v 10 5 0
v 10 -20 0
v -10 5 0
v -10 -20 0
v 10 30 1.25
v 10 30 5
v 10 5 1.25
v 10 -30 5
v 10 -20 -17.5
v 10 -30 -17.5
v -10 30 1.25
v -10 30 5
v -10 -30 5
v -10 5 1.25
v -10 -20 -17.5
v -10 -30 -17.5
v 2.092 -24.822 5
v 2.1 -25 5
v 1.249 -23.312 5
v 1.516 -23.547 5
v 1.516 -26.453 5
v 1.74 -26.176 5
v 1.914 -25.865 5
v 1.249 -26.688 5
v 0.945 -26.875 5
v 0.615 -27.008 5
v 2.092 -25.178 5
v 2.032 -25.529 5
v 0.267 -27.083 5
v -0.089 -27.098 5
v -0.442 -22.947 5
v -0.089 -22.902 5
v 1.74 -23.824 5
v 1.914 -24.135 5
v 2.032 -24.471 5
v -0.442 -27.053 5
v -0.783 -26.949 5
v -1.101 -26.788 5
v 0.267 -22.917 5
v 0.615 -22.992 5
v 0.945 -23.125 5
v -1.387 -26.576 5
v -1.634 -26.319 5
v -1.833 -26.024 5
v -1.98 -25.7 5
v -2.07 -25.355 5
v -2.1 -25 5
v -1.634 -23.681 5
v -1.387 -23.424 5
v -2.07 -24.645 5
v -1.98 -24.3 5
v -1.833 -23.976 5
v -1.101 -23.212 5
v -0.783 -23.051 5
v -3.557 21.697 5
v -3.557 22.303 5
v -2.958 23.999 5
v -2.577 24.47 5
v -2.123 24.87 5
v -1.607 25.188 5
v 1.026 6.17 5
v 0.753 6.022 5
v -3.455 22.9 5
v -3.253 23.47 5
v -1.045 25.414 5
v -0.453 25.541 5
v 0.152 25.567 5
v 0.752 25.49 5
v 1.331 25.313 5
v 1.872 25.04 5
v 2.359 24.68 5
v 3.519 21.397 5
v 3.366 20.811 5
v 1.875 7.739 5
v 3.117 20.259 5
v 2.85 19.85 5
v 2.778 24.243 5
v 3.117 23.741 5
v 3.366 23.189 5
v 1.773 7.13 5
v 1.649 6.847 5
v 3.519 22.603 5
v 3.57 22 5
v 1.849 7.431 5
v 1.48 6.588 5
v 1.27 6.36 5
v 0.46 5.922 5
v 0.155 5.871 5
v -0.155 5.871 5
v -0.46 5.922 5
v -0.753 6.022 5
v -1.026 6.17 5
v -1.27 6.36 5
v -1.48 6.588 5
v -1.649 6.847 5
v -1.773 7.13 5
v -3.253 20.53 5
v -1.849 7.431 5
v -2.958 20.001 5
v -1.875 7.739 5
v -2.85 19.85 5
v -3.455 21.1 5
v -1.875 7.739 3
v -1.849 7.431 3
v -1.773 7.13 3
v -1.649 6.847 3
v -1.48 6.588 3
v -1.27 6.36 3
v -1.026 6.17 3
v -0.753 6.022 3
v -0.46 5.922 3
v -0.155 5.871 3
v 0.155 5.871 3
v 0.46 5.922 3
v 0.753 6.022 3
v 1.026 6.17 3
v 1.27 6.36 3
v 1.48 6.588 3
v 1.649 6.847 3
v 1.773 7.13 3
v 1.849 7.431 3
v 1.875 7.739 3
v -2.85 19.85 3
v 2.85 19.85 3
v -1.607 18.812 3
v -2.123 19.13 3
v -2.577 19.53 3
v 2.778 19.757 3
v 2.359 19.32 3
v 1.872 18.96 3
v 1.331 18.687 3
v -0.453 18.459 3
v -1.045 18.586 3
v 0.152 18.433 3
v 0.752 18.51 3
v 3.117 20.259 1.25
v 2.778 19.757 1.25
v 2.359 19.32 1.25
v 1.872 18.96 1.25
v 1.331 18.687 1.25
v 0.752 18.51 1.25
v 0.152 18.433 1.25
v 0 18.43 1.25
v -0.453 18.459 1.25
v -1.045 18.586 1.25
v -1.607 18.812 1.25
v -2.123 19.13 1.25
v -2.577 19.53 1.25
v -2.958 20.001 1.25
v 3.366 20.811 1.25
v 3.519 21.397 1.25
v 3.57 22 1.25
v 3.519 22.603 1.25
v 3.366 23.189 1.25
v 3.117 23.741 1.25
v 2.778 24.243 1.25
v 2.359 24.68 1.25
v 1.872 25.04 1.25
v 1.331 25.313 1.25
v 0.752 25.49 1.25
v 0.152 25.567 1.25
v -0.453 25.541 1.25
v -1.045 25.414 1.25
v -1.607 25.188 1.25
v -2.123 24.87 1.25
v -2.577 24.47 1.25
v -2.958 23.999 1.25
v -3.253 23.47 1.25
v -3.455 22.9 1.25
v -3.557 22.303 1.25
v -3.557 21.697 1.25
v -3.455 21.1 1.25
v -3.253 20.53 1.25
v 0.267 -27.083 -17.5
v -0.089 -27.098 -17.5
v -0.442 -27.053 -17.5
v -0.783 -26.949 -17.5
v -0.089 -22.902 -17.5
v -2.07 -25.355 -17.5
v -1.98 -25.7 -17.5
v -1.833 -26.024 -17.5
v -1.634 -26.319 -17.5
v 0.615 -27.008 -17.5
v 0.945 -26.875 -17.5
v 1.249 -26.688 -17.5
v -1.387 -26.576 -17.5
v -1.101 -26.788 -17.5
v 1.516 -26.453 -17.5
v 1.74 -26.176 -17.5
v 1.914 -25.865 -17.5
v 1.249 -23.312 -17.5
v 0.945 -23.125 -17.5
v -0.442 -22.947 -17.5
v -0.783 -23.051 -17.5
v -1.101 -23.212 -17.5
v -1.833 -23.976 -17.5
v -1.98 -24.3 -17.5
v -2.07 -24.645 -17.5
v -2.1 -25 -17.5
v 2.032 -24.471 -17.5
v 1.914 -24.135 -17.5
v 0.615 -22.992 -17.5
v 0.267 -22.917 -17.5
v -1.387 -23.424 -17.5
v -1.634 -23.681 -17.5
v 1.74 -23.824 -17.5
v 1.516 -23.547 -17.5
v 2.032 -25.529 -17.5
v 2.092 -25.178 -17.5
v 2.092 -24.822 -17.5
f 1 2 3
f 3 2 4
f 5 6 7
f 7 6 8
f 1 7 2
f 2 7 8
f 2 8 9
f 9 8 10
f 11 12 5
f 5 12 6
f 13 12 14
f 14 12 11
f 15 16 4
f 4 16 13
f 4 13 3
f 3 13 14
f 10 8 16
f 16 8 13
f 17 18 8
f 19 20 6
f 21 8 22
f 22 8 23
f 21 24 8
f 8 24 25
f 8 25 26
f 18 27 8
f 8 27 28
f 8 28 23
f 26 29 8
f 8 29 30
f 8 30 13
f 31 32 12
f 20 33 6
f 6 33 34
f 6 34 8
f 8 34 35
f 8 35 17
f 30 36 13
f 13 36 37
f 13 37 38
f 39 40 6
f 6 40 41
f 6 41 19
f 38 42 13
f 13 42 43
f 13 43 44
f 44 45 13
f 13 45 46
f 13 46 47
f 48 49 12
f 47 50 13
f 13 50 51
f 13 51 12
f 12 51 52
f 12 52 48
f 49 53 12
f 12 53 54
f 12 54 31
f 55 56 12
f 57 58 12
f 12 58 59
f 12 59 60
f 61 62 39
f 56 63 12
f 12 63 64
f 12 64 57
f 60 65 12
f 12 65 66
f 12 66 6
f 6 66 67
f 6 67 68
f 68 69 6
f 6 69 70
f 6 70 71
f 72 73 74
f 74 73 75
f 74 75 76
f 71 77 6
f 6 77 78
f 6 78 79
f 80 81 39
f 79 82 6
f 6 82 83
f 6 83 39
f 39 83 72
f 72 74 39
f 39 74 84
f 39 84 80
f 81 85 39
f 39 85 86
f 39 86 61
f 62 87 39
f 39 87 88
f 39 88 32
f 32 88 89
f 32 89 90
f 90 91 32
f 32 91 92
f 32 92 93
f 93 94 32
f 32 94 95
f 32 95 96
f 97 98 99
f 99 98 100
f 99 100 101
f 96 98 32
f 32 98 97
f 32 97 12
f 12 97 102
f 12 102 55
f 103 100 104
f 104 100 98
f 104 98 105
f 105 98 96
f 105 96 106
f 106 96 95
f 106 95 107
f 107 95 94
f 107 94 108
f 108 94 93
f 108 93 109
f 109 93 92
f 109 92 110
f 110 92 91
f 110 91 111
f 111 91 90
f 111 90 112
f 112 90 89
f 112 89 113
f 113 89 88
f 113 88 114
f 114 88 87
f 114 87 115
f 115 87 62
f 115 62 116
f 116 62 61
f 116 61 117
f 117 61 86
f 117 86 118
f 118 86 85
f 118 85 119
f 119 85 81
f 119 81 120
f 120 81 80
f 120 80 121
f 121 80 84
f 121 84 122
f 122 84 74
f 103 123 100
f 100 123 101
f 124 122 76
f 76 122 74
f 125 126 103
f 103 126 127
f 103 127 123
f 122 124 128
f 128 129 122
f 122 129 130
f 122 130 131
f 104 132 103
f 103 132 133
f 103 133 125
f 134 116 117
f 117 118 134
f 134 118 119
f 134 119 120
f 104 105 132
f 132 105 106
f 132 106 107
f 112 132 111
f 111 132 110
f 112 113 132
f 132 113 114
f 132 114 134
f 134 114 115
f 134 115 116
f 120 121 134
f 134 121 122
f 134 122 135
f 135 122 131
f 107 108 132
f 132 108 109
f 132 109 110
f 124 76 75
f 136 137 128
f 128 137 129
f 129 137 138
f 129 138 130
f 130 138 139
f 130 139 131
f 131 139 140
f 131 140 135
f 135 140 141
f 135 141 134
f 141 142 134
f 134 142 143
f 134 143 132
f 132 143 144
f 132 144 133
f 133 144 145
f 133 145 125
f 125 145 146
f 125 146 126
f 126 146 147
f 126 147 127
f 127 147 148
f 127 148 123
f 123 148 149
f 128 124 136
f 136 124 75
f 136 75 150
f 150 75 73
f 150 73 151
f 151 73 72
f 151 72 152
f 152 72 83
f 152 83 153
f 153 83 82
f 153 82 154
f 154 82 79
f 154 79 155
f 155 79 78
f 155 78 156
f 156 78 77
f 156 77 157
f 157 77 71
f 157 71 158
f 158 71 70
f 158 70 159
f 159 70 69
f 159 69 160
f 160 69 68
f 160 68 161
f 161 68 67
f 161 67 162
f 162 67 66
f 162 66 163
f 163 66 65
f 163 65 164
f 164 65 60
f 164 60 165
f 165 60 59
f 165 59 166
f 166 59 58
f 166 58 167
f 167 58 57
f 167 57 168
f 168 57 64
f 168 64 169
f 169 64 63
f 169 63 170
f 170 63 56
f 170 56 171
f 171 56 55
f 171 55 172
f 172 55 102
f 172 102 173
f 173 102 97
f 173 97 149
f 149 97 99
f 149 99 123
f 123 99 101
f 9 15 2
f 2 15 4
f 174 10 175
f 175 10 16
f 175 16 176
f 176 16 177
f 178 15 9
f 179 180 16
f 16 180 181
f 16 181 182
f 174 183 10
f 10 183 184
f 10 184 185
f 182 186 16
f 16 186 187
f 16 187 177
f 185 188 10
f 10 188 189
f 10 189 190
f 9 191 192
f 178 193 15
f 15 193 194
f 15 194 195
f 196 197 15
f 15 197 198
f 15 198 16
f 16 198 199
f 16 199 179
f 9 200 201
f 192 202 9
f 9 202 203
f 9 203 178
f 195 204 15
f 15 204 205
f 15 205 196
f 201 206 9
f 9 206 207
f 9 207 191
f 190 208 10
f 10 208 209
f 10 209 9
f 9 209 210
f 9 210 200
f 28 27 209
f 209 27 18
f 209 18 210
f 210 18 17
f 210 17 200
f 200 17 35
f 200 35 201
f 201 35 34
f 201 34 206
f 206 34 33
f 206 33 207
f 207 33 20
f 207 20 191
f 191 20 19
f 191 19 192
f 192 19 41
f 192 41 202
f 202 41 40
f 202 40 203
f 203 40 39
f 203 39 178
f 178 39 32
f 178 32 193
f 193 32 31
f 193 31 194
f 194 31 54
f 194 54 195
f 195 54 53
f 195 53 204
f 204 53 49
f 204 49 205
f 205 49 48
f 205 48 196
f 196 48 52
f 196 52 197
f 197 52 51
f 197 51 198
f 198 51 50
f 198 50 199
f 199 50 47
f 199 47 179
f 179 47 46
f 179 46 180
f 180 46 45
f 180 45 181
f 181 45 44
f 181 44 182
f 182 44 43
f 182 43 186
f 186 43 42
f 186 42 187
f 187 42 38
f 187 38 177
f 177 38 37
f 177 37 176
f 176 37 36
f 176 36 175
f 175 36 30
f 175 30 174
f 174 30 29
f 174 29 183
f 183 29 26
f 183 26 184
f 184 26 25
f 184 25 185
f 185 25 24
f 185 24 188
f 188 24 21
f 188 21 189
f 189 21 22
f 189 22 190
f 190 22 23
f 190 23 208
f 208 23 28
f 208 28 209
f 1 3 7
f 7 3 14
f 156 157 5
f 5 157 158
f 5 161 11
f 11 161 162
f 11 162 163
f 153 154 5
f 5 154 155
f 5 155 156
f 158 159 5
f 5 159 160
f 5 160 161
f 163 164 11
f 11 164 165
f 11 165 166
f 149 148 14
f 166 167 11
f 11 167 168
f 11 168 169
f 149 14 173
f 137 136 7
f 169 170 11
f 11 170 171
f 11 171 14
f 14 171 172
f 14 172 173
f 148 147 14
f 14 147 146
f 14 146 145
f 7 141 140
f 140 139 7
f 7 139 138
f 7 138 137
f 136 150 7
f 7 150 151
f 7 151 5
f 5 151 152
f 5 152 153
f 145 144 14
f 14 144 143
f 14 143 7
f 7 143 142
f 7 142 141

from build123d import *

# Parameters (mm, degrees)
SKETCH3_W           = 20
SKETCH3_H           = 60
BOSS_EXTRUDE3_DEPTH = 5
CUT_EXTRUDE2_DEPTH  = 2
SKETCH6_R           = 3.57
CUT_EXTRUDE3_DEPTH  = 3
SKETCH7_W           = 20
SKETCH7_H           = 10
BOSS_EXTRUDE4_DEPTH = 17.5
SKETCH8_R           = 2.1
CUT_EXTRUDE4_DEPTH  = 40
SKETCH9_W           = 1.25
SKETCH9_H           = 25
CUT_EXTRUDE5_DEPTH  = 30


with BuildPart() as part:
    # Sketch3 → Boss-Extrude3 (new body)
    with BuildSketch(Plane.XY):
        Rectangle(SKETCH3_W, SKETCH3_H)
    extrude(amount=BOSS_EXTRUDE3_DEPTH)

    # Sketch4 → Cut-Extrude2 (cut)
    with BuildSketch(Plane.XY.offset(5)):
        with BuildLine():
            Line((-2.85, 19.850023256), (-1.875, 7.739206809))
            Line((-1.875, 7.739206809), (1.875, 7.739206809))
            Line((1.875, 7.739206809), (2.85, 19.850023256))
            ThreePointArc((2.85, 19.850023256), (0, 18.43), (-2.85, 19.850023256))
        make_face()
        with BuildLine():
            Line((1.875, 7.739206809), (-1.875, 7.739206809))
            ThreePointArc((-1.875, 7.739206809), (0, 5.864206809), (1.875, 7.739206809))
        make_face()
        with BuildLine():
            ThreePointArc((3.57, 22), (-1.133666618, 25.385217866), (-2.85, 19.850023256))
            Line((-2.85, 19.850023256), (2.85, 19.850023256))
            ThreePointArc((2.85, 19.850023256), (3.385217866, 20.866333382), (3.57, 22))
        make_face()
        with BuildLine():
            Line((2.85, 19.850023256), (-2.85, 19.850023256))
            ThreePointArc((-2.85, 19.850023256), (0, 18.43), (2.85, 19.850023256))
        make_face()
    extrude(amount=-CUT_EXTRUDE2_DEPTH, mode=Mode.SUBTRACT)

    # Sketch6 → Cut-Extrude3 (cut)
    with BuildSketch(Plane.XY.offset(3)):
        with Locations((0, 22)):
            Circle(SKETCH6_R)
    extrude(amount=-CUT_EXTRUDE3_DEPTH, mode=Mode.SUBTRACT)

    # Sketch7 → Boss-Extrude4 (add)
    with BuildSketch(Plane(origin=(0, 0, 0), x_dir=(-1, 0, 0), z_dir=(0, 0, -1))):
        with Locations((0, -25)):
            Rectangle(SKETCH7_W, SKETCH7_H)
    extrude(amount=BOSS_EXTRUDE4_DEPTH)

    # Sketch8 → Cut-Extrude4 (cut)
    with BuildSketch(Plane(origin=(0, 0, -17.5), x_dir=(-1, 0, 0), z_dir=(0, 0, -1))):
        with Locations((0, -25)):
            Circle(SKETCH8_R)
    extrude(amount=-CUT_EXTRUDE4_DEPTH, mode=Mode.SUBTRACT)

    # Sketch9 → Cut-Extrude5 (cut)
    with BuildSketch(Plane(origin=(10, 0, 0), x_dir=(0, 0, -1), z_dir=(1, 0, 0))):
        with Locations((-0.625, 17.5)):
            Rectangle(SKETCH9_W, SKETCH9_H)
    extrude(amount=-CUT_EXTRUDE5_DEPTH, mode=Mode.SUBTRACT)


solid = part.part
